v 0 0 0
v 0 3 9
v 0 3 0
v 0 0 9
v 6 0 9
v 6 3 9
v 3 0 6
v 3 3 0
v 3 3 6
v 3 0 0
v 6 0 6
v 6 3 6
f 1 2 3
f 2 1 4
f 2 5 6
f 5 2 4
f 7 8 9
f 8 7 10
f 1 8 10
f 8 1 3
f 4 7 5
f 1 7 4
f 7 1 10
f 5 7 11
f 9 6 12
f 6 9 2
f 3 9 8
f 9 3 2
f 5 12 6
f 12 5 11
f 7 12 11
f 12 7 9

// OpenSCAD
module bausteinl(){
    union(){
        cube([3,3,9]);
        translate([3,0,6])
            cube([3,3,3]);
        }
}
bausteinl();
